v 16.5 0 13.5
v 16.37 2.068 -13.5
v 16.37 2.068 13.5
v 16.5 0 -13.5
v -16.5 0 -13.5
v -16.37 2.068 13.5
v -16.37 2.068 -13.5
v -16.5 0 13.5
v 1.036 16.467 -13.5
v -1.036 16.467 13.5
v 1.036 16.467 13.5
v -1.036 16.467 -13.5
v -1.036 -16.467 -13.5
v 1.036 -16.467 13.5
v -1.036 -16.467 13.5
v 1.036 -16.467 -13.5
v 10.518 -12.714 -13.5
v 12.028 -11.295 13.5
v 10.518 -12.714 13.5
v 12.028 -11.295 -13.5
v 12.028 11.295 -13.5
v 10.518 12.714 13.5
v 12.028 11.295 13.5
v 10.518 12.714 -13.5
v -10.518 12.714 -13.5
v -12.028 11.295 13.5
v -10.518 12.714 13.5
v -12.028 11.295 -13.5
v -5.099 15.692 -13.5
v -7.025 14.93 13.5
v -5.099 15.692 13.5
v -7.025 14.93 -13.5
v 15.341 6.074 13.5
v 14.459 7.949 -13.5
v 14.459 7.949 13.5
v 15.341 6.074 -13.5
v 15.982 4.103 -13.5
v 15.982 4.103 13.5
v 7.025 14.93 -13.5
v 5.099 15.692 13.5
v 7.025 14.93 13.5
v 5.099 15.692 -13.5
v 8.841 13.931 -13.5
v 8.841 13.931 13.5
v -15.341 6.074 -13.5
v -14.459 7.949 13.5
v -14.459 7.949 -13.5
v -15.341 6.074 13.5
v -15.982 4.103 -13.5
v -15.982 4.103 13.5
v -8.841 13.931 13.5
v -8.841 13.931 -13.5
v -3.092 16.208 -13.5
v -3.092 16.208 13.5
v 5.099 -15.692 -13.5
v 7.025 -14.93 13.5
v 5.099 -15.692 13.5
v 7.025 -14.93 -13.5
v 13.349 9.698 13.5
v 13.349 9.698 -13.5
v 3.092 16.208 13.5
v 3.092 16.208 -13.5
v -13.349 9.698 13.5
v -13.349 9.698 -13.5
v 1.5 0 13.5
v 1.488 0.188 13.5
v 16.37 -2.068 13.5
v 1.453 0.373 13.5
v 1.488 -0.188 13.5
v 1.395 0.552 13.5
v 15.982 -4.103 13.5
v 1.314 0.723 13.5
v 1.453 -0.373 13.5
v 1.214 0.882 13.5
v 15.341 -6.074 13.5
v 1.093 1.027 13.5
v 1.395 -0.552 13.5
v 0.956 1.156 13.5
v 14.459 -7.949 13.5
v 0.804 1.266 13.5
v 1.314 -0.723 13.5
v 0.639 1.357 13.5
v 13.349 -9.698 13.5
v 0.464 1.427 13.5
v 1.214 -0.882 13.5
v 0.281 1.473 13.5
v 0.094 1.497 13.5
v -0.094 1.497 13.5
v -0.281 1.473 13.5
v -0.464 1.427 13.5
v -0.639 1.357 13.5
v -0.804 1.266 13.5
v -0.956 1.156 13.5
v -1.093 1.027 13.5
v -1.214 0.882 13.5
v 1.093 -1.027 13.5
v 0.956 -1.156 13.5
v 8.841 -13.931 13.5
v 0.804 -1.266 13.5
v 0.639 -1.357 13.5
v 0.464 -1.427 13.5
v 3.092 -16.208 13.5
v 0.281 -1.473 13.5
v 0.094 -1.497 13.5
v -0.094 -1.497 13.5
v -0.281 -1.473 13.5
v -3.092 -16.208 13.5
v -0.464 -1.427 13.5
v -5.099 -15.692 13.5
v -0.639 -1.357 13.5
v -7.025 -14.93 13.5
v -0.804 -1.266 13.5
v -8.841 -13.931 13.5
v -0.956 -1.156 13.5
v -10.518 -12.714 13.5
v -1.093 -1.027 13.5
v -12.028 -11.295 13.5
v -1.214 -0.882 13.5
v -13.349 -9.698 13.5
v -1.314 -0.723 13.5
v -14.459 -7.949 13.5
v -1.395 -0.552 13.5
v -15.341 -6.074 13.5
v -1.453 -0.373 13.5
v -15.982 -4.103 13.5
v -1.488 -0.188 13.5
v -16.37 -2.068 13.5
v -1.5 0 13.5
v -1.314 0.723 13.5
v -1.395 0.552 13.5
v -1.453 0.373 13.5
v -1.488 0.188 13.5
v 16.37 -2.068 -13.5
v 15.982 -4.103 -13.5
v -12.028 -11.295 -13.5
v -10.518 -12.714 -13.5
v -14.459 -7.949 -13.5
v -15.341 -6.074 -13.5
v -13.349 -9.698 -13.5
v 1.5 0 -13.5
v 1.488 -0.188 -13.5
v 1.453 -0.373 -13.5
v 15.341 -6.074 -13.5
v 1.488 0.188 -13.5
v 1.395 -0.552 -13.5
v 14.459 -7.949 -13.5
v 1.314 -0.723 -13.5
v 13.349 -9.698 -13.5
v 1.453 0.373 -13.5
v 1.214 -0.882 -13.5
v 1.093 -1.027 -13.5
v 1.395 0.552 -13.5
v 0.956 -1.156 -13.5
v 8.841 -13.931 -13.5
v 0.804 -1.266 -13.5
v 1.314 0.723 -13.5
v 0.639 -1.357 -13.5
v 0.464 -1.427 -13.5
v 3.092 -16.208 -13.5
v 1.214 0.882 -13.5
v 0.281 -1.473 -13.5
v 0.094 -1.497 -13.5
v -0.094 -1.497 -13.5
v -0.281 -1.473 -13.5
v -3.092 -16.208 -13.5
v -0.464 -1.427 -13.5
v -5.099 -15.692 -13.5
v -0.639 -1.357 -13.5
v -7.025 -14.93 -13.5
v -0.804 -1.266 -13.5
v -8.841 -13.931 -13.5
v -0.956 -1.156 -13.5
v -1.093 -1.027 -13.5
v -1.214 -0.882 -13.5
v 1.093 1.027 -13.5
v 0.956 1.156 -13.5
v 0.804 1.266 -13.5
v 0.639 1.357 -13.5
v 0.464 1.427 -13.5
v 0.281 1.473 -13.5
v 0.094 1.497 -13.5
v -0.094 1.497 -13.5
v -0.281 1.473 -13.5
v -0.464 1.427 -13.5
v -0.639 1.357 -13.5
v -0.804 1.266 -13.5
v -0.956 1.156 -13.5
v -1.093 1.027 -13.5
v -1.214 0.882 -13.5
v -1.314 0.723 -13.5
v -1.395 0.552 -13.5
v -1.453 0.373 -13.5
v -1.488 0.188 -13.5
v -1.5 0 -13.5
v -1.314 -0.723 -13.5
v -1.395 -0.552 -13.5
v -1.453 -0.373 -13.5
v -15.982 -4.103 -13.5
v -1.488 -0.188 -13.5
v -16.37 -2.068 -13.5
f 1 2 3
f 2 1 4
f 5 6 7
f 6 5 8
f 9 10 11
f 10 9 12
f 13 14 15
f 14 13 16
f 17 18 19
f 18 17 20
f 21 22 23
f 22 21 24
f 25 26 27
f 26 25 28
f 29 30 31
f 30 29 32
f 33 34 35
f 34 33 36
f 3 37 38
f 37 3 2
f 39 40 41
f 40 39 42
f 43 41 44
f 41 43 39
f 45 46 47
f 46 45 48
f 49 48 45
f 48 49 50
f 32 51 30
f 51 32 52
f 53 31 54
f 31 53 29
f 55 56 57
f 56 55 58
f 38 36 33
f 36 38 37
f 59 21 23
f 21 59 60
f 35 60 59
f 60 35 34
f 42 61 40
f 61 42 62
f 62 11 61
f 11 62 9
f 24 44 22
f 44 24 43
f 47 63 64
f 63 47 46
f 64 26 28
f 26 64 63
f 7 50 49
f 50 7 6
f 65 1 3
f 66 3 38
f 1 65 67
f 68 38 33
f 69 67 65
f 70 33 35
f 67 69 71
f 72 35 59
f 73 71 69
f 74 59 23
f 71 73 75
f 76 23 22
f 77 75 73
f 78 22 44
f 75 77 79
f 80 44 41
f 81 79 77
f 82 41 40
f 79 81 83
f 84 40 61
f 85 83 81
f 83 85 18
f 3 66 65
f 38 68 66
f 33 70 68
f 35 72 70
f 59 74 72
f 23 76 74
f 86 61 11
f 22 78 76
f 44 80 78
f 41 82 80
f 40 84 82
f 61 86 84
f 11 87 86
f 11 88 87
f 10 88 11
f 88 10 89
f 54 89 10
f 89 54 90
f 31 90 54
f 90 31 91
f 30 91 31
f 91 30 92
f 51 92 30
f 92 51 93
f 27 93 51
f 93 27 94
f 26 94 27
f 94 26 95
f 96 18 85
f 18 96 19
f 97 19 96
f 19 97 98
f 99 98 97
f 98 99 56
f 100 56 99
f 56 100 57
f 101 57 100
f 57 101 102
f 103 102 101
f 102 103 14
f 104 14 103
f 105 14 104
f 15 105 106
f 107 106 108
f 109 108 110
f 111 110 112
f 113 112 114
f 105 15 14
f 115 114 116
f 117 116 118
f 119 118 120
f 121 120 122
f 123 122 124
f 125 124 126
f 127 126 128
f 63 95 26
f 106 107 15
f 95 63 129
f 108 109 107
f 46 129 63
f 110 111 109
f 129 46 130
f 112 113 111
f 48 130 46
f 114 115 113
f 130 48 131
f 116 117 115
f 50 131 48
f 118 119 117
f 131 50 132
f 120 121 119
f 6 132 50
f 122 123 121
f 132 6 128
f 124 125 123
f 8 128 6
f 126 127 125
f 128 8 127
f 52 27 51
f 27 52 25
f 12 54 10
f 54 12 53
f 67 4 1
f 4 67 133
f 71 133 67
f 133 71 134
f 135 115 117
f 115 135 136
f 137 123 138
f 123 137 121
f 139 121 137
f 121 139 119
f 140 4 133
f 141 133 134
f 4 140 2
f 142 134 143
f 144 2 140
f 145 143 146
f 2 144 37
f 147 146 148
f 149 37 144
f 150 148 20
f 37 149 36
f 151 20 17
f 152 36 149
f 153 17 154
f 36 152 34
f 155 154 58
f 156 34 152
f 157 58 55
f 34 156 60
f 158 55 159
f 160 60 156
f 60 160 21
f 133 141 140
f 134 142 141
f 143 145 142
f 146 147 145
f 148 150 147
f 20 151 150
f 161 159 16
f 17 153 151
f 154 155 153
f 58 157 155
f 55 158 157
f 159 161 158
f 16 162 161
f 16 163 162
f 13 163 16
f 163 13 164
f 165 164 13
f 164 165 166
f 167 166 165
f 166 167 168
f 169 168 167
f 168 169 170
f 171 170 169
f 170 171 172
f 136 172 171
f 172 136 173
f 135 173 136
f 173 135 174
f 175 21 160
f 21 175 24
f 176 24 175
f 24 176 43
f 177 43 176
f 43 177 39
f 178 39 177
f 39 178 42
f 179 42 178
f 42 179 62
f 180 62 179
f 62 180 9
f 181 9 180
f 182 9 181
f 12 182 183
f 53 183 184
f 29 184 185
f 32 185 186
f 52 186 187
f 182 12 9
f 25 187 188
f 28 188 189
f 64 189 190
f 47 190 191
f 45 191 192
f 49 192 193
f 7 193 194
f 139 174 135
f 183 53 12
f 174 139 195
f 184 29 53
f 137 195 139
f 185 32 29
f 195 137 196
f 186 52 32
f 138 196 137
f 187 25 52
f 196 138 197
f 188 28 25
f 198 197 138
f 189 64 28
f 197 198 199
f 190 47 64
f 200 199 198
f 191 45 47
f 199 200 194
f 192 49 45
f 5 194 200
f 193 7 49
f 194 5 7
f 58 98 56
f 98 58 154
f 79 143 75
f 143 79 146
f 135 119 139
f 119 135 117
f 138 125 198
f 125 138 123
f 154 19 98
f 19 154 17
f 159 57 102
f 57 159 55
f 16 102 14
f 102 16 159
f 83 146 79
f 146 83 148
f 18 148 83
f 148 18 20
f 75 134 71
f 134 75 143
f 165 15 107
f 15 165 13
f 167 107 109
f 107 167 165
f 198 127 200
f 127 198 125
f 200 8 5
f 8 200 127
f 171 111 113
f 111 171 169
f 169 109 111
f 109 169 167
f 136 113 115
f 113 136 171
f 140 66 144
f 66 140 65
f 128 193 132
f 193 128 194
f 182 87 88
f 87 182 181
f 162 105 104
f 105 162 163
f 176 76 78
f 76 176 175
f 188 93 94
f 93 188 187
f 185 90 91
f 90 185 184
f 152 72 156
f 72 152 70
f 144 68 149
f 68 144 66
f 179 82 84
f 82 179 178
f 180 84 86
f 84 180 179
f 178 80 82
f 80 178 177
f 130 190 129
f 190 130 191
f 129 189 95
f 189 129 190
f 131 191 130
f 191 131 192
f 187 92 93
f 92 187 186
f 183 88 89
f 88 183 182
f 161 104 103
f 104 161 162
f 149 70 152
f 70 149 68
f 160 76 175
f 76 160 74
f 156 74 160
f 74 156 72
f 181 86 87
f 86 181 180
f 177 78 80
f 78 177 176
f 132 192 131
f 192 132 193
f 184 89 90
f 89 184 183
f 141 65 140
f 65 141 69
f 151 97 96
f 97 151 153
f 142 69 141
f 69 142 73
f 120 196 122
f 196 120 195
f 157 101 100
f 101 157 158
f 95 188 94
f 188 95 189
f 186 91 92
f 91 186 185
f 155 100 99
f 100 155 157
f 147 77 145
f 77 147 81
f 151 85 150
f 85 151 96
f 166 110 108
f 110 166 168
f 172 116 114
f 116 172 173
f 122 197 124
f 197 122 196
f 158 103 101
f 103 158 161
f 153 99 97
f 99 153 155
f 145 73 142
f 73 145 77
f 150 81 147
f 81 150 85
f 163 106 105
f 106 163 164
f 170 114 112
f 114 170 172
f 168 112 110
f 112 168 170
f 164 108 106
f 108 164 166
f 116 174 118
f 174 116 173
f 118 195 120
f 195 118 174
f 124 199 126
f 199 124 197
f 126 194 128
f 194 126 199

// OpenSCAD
$fn = 50;


difference() {
	union() {
		translate(v = [0, 0, -13.5000000000]) {
			cylinder(h = 27, r = 16.5000000000);
		}
	}
	union() {
		translate(v = [0, 0, -100.0000000000]) {
			cylinder(h = 200, r = 1.5000000000);
		}
	}
}
